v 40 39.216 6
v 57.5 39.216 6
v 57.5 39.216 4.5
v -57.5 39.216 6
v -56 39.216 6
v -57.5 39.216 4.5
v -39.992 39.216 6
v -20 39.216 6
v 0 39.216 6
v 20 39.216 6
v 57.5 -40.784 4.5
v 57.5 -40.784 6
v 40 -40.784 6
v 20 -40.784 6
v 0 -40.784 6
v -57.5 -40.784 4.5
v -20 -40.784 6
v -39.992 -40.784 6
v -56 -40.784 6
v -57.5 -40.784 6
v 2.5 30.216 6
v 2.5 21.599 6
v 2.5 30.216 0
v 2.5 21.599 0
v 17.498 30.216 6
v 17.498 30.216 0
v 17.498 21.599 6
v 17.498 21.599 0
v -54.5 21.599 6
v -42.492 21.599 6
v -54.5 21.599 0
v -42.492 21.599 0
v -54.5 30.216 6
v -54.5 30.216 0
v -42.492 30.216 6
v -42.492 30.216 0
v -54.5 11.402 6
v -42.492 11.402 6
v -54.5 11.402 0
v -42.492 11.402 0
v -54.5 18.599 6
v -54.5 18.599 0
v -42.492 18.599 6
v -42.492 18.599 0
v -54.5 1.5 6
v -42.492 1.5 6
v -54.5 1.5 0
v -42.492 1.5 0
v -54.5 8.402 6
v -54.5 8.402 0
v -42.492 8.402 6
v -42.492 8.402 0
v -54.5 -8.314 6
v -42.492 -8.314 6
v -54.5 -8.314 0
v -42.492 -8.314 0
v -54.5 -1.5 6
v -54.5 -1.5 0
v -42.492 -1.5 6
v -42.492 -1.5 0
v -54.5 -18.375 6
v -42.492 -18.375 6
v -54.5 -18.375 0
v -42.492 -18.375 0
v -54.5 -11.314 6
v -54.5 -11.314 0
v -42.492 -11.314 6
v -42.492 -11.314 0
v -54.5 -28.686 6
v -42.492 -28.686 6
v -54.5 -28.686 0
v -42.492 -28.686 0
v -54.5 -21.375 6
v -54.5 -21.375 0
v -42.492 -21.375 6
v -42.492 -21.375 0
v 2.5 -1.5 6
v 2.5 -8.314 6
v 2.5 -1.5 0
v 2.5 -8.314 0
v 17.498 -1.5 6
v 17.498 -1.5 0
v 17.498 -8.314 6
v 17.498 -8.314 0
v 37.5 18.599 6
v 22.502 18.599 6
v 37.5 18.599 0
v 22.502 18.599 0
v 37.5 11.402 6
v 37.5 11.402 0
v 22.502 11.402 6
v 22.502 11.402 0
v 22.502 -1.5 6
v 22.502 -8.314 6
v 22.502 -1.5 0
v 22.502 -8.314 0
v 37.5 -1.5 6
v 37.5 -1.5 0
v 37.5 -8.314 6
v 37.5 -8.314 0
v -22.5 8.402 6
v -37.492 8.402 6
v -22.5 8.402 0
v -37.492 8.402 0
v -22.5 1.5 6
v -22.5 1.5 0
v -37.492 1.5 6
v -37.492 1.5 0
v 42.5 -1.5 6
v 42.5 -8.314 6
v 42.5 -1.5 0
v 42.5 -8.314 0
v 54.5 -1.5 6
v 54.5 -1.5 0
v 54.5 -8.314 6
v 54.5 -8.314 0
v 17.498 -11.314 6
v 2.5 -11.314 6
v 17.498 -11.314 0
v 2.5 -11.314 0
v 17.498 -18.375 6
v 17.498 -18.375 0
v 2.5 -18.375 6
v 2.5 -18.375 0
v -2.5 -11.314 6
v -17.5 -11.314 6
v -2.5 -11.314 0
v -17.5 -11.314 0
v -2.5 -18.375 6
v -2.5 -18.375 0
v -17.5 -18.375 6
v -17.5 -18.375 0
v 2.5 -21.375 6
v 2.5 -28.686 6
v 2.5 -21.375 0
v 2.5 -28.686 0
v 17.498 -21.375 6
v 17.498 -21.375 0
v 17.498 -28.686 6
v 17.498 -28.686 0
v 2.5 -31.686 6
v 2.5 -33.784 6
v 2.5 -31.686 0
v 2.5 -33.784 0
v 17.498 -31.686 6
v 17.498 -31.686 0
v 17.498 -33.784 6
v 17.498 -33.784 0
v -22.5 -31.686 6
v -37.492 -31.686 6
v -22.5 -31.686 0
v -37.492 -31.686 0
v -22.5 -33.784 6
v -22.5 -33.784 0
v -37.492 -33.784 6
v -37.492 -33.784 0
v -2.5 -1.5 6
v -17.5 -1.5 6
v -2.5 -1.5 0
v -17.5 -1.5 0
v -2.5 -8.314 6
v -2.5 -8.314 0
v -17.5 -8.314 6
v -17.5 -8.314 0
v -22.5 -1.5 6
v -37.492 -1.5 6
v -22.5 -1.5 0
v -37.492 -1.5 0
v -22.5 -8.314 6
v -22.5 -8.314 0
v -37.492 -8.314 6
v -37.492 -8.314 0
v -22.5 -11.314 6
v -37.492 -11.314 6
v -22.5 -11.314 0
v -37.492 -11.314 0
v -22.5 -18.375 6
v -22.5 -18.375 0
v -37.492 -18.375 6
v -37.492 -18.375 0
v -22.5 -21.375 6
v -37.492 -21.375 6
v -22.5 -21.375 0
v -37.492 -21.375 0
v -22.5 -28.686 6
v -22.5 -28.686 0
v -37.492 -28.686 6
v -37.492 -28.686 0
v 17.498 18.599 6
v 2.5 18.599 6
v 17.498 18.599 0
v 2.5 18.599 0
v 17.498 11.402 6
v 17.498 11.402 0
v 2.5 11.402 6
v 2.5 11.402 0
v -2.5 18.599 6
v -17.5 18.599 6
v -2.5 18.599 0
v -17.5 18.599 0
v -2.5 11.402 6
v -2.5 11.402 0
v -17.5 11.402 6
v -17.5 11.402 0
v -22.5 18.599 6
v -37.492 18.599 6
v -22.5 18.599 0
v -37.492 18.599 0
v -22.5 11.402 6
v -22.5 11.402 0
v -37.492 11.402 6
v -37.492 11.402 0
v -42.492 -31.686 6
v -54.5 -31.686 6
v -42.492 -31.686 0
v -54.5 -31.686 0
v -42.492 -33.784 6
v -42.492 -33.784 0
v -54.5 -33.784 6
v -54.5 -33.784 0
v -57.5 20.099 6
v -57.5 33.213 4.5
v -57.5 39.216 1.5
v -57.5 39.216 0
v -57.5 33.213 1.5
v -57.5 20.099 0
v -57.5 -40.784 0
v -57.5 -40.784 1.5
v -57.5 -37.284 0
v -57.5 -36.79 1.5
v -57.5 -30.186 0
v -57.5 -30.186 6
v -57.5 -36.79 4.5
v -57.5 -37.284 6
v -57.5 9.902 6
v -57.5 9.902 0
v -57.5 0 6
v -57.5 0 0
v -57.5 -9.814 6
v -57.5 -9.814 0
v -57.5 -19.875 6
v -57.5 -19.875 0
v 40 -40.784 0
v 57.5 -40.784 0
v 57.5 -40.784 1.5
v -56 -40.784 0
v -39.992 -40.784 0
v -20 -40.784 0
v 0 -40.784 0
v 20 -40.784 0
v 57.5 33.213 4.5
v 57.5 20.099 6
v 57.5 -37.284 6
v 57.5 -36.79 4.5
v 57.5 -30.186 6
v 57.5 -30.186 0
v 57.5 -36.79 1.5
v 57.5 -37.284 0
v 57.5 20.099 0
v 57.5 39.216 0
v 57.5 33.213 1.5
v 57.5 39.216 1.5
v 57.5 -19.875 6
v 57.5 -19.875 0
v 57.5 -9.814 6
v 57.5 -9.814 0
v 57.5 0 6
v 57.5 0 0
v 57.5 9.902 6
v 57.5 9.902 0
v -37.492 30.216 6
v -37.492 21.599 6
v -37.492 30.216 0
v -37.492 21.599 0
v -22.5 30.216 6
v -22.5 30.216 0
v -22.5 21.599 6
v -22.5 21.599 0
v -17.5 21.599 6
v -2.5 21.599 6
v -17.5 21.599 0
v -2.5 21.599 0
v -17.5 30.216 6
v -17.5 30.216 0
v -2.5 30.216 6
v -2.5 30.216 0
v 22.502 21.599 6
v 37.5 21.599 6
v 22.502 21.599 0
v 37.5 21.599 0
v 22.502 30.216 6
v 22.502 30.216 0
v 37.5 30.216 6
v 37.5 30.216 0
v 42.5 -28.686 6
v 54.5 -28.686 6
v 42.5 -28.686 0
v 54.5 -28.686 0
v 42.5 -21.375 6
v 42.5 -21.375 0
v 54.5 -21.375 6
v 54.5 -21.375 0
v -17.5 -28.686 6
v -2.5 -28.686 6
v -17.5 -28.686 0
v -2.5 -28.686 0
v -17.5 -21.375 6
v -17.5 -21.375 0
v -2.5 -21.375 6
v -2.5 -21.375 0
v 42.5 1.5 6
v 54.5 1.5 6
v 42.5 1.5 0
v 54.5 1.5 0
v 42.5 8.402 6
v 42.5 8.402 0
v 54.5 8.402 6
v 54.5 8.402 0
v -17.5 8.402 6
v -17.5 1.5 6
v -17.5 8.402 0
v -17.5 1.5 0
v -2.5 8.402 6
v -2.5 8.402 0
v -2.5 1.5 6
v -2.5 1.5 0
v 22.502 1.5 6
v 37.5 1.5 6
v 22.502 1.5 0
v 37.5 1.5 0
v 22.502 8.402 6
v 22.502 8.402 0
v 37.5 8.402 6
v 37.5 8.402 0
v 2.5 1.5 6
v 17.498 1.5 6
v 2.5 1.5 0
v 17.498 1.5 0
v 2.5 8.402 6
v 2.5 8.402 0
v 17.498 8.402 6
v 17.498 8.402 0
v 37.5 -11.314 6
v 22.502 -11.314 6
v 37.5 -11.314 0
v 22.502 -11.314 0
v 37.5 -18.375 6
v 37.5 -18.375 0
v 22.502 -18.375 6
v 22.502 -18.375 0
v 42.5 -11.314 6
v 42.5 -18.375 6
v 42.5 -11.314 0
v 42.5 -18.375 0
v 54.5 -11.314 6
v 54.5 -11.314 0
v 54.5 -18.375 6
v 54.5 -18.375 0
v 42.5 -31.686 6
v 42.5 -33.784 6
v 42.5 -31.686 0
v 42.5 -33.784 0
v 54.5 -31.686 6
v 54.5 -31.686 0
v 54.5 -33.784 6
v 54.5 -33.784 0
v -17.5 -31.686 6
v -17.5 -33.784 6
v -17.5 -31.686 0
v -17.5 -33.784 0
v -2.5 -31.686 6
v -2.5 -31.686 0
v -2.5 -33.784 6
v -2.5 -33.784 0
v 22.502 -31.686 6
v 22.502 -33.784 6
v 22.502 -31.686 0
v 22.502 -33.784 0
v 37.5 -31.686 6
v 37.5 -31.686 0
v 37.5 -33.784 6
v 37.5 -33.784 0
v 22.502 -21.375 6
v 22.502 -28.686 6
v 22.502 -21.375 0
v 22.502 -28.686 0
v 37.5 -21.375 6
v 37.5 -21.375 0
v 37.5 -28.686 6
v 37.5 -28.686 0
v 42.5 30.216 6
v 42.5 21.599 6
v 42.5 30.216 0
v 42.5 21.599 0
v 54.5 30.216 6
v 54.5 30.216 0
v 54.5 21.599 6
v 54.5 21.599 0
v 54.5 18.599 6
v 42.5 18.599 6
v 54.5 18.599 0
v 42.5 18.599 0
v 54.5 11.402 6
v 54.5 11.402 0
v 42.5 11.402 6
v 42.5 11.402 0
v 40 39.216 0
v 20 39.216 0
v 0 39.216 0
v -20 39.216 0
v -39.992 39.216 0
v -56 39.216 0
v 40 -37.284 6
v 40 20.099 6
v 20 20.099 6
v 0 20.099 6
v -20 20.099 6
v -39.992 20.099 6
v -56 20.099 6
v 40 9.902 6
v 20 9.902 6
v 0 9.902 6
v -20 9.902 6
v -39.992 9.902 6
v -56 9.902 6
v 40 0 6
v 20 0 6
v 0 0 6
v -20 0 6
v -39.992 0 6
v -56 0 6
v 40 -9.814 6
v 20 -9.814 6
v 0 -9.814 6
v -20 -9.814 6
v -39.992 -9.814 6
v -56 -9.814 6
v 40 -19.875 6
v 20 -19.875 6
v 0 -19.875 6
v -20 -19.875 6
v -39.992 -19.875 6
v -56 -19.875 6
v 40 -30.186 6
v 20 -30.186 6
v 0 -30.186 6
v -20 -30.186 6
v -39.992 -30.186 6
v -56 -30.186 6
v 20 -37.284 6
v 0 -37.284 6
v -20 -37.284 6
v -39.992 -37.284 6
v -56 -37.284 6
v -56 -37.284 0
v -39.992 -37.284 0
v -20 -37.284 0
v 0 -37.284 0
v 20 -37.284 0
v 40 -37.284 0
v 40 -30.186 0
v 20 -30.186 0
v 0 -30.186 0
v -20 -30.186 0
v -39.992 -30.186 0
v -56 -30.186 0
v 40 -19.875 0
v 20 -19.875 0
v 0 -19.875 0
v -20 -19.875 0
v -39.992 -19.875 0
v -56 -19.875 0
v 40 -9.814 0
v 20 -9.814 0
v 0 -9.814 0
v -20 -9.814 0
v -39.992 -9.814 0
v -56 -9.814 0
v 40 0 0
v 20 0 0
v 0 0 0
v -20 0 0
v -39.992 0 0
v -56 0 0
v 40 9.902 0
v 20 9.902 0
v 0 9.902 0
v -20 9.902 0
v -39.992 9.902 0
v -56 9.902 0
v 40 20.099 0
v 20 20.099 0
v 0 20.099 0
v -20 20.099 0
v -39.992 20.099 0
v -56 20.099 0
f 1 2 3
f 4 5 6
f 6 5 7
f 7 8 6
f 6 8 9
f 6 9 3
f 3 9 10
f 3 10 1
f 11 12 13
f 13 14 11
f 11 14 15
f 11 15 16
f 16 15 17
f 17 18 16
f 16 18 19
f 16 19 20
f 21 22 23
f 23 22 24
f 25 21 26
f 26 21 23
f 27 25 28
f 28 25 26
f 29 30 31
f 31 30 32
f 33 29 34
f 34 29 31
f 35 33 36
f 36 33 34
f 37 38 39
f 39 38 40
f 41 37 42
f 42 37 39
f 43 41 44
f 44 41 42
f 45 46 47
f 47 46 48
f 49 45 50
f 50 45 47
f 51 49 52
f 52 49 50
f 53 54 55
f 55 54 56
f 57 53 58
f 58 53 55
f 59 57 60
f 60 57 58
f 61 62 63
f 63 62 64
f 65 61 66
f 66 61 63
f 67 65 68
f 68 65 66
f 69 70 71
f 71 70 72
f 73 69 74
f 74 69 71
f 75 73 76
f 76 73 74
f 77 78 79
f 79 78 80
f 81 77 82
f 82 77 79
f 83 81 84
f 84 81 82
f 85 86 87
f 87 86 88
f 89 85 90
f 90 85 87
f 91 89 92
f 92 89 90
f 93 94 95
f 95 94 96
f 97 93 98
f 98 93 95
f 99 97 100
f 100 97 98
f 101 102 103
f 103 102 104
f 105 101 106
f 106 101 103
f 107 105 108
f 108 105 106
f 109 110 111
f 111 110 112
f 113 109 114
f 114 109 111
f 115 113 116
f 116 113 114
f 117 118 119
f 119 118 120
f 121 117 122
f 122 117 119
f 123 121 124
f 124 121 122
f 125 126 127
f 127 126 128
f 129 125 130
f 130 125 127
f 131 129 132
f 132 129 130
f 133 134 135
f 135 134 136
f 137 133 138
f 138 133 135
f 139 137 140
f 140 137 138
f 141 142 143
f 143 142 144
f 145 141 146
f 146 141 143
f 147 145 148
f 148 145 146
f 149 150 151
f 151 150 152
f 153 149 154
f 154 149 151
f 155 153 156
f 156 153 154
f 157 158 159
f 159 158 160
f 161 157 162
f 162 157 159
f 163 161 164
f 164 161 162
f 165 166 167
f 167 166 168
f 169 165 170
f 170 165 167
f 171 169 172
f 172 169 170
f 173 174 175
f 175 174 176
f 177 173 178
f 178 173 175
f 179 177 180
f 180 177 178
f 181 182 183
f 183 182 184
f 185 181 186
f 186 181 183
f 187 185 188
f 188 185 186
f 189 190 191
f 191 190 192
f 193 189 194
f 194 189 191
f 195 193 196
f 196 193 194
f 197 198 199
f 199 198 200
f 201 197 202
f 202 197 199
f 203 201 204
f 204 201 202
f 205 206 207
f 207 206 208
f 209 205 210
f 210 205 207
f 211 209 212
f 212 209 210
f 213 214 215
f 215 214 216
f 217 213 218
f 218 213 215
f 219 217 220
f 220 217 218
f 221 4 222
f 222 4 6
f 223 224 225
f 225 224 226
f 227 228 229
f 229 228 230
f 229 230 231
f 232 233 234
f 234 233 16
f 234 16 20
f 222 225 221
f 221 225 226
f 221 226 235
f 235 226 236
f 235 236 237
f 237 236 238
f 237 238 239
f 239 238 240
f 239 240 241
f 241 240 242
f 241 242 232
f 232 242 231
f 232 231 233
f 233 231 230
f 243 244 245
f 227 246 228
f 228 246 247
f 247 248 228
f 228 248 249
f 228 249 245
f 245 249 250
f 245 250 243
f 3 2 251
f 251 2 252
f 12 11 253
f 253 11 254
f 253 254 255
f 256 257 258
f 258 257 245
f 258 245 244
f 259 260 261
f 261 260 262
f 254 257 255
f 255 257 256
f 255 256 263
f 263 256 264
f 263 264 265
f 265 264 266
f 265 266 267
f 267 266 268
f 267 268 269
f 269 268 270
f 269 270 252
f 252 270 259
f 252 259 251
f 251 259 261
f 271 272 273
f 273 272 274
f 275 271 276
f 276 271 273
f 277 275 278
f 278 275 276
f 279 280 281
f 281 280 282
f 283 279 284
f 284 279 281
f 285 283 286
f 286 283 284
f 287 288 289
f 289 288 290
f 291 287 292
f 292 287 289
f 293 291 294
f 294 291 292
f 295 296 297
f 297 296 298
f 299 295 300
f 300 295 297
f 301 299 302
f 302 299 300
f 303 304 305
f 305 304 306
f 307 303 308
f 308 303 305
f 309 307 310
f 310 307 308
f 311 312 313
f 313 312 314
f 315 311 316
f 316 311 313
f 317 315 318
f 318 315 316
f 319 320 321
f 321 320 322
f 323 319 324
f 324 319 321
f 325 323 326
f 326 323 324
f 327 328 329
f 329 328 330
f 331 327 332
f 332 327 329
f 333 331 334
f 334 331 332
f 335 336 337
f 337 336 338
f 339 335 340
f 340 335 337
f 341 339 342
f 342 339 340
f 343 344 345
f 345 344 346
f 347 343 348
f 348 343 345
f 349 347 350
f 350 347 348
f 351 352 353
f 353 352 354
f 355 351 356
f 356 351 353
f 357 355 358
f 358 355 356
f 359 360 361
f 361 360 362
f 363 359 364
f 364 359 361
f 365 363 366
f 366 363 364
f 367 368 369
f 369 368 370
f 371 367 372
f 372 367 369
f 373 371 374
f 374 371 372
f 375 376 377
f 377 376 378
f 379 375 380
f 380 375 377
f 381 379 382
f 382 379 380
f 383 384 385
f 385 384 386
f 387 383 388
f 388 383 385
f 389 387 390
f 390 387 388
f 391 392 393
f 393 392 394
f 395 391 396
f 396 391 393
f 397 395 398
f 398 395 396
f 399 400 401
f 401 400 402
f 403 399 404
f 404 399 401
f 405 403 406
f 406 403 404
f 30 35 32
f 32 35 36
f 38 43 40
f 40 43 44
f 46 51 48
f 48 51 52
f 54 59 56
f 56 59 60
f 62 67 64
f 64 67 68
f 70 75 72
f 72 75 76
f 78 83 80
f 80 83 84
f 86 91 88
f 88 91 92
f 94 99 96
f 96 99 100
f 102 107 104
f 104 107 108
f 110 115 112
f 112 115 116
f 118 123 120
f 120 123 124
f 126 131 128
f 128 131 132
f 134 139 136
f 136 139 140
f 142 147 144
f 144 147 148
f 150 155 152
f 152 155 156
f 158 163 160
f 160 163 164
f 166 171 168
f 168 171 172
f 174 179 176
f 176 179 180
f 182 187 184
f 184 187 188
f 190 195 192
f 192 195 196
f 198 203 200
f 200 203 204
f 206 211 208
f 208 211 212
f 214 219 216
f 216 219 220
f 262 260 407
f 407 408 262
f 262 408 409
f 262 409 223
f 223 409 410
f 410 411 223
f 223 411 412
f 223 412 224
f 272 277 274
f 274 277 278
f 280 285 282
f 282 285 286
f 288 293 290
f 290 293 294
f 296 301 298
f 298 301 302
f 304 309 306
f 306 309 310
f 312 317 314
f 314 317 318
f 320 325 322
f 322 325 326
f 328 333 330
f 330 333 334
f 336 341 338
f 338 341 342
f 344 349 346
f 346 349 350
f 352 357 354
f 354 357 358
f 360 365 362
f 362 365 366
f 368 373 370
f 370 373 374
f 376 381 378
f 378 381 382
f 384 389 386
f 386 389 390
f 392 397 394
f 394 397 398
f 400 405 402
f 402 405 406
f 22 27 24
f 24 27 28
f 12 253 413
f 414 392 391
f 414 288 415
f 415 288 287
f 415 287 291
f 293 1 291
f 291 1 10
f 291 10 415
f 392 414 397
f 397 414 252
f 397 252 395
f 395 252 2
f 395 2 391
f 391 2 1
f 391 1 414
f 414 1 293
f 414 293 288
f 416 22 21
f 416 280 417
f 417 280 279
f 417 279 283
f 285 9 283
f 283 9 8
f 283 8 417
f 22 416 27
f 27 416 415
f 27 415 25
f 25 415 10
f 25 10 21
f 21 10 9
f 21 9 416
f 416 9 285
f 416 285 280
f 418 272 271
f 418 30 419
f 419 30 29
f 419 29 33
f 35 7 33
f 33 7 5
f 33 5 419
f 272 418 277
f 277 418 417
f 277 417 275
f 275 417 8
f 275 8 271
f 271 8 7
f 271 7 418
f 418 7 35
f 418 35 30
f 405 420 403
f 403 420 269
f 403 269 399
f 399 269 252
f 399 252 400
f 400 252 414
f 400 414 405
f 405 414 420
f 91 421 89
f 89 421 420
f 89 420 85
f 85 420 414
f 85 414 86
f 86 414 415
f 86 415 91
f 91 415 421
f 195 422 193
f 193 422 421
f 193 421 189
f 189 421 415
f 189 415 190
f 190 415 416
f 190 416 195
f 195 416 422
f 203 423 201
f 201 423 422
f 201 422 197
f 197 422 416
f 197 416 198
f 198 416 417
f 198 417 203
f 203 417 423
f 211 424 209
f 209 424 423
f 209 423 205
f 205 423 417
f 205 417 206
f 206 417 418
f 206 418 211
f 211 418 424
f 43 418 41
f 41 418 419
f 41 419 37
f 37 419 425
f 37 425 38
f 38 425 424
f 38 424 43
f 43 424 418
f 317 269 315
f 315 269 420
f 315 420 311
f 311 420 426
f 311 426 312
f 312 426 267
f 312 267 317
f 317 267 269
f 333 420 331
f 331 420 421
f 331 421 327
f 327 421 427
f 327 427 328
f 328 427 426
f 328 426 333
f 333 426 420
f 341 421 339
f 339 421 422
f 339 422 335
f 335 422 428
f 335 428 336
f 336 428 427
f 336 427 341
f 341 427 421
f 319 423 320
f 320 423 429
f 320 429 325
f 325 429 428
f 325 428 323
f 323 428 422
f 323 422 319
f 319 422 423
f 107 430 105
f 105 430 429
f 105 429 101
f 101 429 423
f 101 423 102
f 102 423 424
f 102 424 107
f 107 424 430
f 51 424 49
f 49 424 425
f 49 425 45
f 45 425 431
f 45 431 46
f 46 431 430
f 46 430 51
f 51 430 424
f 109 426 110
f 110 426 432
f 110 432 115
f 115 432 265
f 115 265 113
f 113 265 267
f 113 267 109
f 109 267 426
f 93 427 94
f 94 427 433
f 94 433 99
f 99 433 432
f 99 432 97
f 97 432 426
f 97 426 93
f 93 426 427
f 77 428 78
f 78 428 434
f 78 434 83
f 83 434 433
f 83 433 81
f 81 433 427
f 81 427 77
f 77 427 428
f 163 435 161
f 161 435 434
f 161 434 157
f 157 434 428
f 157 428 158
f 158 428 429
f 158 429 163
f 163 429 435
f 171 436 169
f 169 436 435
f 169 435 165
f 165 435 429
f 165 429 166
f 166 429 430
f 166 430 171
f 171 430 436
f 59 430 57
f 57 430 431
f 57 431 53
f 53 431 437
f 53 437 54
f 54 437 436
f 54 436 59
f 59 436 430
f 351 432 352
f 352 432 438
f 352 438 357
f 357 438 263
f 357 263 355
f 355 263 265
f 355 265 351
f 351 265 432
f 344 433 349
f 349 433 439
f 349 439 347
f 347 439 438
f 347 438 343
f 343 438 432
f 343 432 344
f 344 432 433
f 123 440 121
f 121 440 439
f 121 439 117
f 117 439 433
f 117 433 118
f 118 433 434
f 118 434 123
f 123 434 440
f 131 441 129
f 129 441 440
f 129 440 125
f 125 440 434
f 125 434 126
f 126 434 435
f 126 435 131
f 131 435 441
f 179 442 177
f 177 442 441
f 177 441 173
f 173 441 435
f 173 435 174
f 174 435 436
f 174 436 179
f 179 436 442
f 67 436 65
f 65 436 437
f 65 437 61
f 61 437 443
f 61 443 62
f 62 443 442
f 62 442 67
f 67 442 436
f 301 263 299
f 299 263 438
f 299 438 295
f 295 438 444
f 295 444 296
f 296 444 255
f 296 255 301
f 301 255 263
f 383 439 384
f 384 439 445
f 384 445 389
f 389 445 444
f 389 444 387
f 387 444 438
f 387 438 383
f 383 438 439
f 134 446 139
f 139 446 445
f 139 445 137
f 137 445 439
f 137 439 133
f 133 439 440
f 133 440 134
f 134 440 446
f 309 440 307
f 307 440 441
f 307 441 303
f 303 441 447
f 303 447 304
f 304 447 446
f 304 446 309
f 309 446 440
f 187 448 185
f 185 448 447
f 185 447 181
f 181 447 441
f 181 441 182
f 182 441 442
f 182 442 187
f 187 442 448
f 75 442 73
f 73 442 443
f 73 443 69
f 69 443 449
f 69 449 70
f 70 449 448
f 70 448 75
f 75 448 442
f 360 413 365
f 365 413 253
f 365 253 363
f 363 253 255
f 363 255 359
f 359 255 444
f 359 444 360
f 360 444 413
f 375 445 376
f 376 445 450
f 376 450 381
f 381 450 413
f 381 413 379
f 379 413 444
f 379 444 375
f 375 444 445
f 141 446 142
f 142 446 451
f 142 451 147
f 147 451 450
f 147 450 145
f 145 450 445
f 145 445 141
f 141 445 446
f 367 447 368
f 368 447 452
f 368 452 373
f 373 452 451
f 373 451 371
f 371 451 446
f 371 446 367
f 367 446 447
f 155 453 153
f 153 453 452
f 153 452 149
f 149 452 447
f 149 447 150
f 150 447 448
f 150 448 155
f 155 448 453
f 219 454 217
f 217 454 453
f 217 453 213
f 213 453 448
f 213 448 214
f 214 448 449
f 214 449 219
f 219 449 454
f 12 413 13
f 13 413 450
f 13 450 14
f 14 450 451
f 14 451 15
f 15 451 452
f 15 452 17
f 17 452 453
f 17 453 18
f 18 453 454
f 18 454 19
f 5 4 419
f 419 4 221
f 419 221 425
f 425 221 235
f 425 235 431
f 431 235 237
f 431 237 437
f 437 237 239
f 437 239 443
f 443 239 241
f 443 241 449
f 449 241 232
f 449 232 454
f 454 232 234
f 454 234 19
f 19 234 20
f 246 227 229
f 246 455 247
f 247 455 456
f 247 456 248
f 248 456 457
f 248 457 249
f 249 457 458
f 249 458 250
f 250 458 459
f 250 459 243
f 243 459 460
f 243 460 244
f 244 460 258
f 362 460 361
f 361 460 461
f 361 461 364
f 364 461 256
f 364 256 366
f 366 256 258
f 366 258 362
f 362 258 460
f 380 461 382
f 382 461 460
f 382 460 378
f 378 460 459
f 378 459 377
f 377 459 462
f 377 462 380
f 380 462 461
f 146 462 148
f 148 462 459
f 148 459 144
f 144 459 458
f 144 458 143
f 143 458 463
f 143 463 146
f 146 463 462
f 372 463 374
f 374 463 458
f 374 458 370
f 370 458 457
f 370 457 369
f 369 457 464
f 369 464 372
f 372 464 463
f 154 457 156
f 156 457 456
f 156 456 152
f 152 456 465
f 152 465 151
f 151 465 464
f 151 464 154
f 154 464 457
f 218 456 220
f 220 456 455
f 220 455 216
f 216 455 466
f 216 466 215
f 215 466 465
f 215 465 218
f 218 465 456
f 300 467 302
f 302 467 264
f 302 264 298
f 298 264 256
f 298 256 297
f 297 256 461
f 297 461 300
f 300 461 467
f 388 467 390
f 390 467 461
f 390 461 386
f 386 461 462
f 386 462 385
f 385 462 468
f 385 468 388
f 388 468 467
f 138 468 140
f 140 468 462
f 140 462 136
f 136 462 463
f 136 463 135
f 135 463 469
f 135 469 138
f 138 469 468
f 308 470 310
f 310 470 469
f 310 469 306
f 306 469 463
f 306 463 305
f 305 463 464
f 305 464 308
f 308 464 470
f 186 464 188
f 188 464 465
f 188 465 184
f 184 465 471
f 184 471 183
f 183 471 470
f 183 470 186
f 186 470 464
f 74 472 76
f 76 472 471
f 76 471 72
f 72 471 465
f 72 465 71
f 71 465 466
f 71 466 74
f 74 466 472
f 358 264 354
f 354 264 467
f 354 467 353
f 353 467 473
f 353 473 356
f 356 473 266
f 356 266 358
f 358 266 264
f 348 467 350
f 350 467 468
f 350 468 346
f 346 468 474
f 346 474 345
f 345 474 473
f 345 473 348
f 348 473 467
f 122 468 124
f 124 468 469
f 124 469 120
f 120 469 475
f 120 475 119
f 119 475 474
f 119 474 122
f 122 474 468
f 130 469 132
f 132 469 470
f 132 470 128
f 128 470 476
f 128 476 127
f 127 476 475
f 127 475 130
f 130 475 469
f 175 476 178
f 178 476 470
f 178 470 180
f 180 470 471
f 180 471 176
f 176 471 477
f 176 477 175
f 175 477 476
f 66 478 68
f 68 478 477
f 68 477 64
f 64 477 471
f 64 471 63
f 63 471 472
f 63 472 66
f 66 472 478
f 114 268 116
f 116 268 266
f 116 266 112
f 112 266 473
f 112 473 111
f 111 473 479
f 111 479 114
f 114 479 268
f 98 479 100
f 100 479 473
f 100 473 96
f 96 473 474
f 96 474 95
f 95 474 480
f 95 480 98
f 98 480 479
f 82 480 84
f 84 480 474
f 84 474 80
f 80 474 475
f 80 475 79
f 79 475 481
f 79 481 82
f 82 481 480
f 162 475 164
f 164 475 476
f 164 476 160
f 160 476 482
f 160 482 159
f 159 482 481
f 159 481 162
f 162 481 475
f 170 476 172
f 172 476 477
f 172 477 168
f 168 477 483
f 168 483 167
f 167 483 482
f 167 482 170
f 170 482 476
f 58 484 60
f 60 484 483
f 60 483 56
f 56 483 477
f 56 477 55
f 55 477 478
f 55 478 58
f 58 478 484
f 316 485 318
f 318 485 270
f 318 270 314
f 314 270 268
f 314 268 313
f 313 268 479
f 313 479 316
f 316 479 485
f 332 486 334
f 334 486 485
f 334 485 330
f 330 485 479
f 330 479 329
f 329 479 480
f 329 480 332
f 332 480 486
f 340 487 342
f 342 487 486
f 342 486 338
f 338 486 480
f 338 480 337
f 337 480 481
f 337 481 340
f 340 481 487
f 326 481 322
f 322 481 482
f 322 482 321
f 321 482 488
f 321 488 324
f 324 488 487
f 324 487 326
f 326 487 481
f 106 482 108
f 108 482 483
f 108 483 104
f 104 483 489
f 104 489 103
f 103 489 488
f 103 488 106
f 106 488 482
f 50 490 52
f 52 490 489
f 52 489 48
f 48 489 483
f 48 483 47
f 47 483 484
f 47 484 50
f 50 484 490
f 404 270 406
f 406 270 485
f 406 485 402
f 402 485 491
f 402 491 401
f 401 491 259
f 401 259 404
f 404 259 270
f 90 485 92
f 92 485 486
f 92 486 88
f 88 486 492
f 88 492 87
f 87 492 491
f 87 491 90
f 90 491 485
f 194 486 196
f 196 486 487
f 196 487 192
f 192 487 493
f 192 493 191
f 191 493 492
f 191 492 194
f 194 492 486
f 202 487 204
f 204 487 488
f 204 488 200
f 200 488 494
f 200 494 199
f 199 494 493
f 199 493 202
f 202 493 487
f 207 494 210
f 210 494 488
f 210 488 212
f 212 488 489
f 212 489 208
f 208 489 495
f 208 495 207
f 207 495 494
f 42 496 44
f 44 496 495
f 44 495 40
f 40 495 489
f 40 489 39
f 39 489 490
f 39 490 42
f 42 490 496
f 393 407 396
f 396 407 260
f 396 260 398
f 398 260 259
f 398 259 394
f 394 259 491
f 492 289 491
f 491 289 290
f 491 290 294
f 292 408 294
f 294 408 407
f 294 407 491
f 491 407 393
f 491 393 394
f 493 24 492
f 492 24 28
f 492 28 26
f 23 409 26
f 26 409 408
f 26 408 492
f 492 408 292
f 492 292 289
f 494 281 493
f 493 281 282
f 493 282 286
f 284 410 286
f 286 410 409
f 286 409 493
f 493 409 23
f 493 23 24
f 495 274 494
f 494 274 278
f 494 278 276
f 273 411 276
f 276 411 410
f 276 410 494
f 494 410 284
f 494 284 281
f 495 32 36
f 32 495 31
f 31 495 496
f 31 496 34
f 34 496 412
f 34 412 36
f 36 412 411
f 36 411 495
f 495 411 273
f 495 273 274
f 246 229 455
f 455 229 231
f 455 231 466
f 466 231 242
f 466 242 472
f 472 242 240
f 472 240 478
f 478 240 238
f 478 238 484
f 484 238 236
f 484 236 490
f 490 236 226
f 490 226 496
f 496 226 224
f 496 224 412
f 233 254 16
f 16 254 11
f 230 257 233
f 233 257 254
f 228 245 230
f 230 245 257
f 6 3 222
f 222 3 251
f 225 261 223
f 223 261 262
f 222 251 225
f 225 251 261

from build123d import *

# Parameters (mm, degrees)
ESBO_O1_W                  = 115
ESBO_O1_H                  = 80
ESBO_O1_W_2                = 12.008486519
ESBO_O1_H_2                = 2.098343741
ESBO_O1_W_3                = 14.991513481
ESBO_O1_H_3                = 7.310170624
ESBO_O1_W_4                = 15
ESBO_O1_H_4                = 7.061661657
ESBO_O1_H_5                = 6.81374745
ESBO_O1_W_5                = 14.997964619
ESBO_O1_W_6                = 12
ESBO_O1_H_6                = 6.901670661
ESBO_O1_H_7                = 7.197630057
ESBO_O1_H_8                = 8.61677581
RESSALTO_EXTRUS_O1_DEPTH   = 6
ESBO_O2_W                  = 3
ESBO_O2_H                  = 3.99391125
ESBO_O2_H_2                = 6.002879156
CORTE_EXTRUS_O1_DEPTH      = 58.5
CORTE_EXTRUS_O1_DEPTH_BACK = 58.5


with BuildPart() as part:
    # Esboço1 → Ressalto-extrusão1 (new body)
    with BuildSketch(Plane.XY):
        with Locations((0, -0.783923472)):
            Rectangle(ESBO_O1_W, ESBO_O1_H)
        with Locations((-48.49575674, -32.734751602)):
            Rectangle(ESBO_O1_W_2, ESBO_O1_H_2, mode=Mode.SUBTRACT)
        with Locations((-29.995756741, -32.734751602)):
            Rectangle(ESBO_O1_W_3, ESBO_O1_H_2, mode=Mode.SUBTRACT)
        with Locations((-48.49575674, -25.030494419)):
            Rectangle(ESBO_O1_W_2, ESBO_O1_H_3, mode=Mode.SUBTRACT)
        with Locations((-29.995756741, -25.030494419)):
            Rectangle(ESBO_O1_W_3, ESBO_O1_H_3, mode=Mode.SUBTRACT)
        with Locations((-10, -32.734751602)):
            Rectangle(ESBO_O1_W_4, ESBO_O1_H_2, mode=Mode.SUBTRACT)
        with Locations((-10, -25.030494419)):
            Rectangle(ESBO_O1_W_4, ESBO_O1_H_3, mode=Mode.SUBTRACT)
        with Locations((-48.49575674, -14.844578279)):
            Rectangle(ESBO_O1_W_2, ESBO_O1_H_4, mode=Mode.SUBTRACT)
        with Locations((-29.995756741, -14.844578279)):
            Rectangle(ESBO_O1_W_3, ESBO_O1_H_4, mode=Mode.SUBTRACT)
        with Locations((-48.49575674, -4.906873725)):
            Rectangle(ESBO_O1_W_2, ESBO_O1_H_5, mode=Mode.SUBTRACT)
        with Locations((-29.995756741, -4.906873725)):
            Rectangle(ESBO_O1_W_3, ESBO_O1_H_5, mode=Mode.SUBTRACT)
        with Locations((-10, -14.844578279)):
            Rectangle(ESBO_O1_W_4, ESBO_O1_H_4, mode=Mode.SUBTRACT)
        with Locations((-10, -4.906873725)):
            Rectangle(ESBO_O1_W_4, ESBO_O1_H_5, mode=Mode.SUBTRACT)
        with Locations((9.99898231, -32.734751602)):
            Rectangle(ESBO_O1_W_5, ESBO_O1_H_2, mode=Mode.SUBTRACT)
        with Locations((9.99898231, -25.030494419)):
            Rectangle(ESBO_O1_W_5, ESBO_O1_H_3, mode=Mode.SUBTRACT)
        with Locations((30.00101769, -32.734751602)):
            Rectangle(ESBO_O1_W_5, ESBO_O1_H_2, mode=Mode.SUBTRACT)
        with Locations((48.5, -32.734751602)):
            Rectangle(ESBO_O1_W_6, ESBO_O1_H_2, mode=Mode.SUBTRACT)
        with Locations((30.00101769, -25.030494419)):
            Rectangle(ESBO_O1_W_5, ESBO_O1_H_3, mode=Mode.SUBTRACT)
        with Locations((48.5, -25.030494419)):
            Rectangle(ESBO_O1_W_6, ESBO_O1_H_3, mode=Mode.SUBTRACT)
        with Locations((9.99898231, -14.844578279)):
            Rectangle(ESBO_O1_W_5, ESBO_O1_H_4, mode=Mode.SUBTRACT)
        with Locations((9.99898231, -4.906873725)):
            Rectangle(ESBO_O1_W_5, ESBO_O1_H_5, mode=Mode.SUBTRACT)
        with Locations((30.00101769, -14.844578279)):
            Rectangle(ESBO_O1_W_5, ESBO_O1_H_4, mode=Mode.SUBTRACT)
        with Locations((48.5, -14.844578279)):
            Rectangle(ESBO_O1_W_6, ESBO_O1_H_4, mode=Mode.SUBTRACT)
        with Locations((30.00101769, -4.906873725)):
            Rectangle(ESBO_O1_W_5, ESBO_O1_H_5, mode=Mode.SUBTRACT)
        with Locations((48.5, -4.906873725)):
            Rectangle(ESBO_O1_W_6, ESBO_O1_H_5, mode=Mode.SUBTRACT)
        with Locations((-48.49575674, 4.950835331)):
            Rectangle(ESBO_O1_W_2, ESBO_O1_H_6, mode=Mode.SUBTRACT)
        with Locations((-29.995756741, 4.950835331)):
            Rectangle(ESBO_O1_W_3, ESBO_O1_H_6, mode=Mode.SUBTRACT)
        with Locations((-10, 4.950835331)):
            Rectangle(ESBO_O1_W_4, ESBO_O1_H_6, mode=Mode.SUBTRACT)
        with Locations((-48.49575674, 15.00048569)):
            Rectangle(ESBO_O1_W_2, ESBO_O1_H_7, mode=Mode.SUBTRACT)
        with Locations((-29.995756741, 15.00048569)):
            Rectangle(ESBO_O1_W_3, ESBO_O1_H_7, mode=Mode.SUBTRACT)
        with Locations((-48.49575674, 25.907688623)):
            Rectangle(ESBO_O1_W_2, ESBO_O1_H_8, mode=Mode.SUBTRACT)
        with Locations((-29.995756741, 25.907688623)):
            Rectangle(ESBO_O1_W_3, ESBO_O1_H_8, mode=Mode.SUBTRACT)
        with Locations((-10, 15.00048569)):
            Rectangle(ESBO_O1_W_4, ESBO_O1_H_7, mode=Mode.SUBTRACT)
        with Locations((-10, 25.907688623)):
            Rectangle(ESBO_O1_W_4, ESBO_O1_H_8, mode=Mode.SUBTRACT)
        with Locations((9.99898231, 4.950835331)):
            Rectangle(ESBO_O1_W_5, ESBO_O1_H_6, mode=Mode.SUBTRACT)
        with Locations((30.00101769, 4.950835331)):
            Rectangle(ESBO_O1_W_5, ESBO_O1_H_6, mode=Mode.SUBTRACT)
        with Locations((48.5, 4.950835331)):
            Rectangle(ESBO_O1_W_6, ESBO_O1_H_6, mode=Mode.SUBTRACT)
        with Locations((9.99898231, 15.00048569)):
            Rectangle(ESBO_O1_W_5, ESBO_O1_H_7, mode=Mode.SUBTRACT)
        with Locations((9.99898231, 25.907688623)):
            Rectangle(ESBO_O1_W_5, ESBO_O1_H_8, mode=Mode.SUBTRACT)
        with Locations((30.00101769, 15.00048569)):
            Rectangle(ESBO_O1_W_5, ESBO_O1_H_7, mode=Mode.SUBTRACT)
        with Locations((48.5, 15.00048569)):
            Rectangle(ESBO_O1_W_6, ESBO_O1_H_7, mode=Mode.SUBTRACT)
        with Locations((30.00101769, 25.907688623)):
            Rectangle(ESBO_O1_W_5, ESBO_O1_H_8, mode=Mode.SUBTRACT)
        with Locations((48.5, 25.907688623)):
            Rectangle(ESBO_O1_W_6, ESBO_O1_H_8, mode=Mode.SUBTRACT)
    extrude(amount=RESSALTO_EXTRUS_O1_DEPTH)

    # Esboço2 → Corte-extrusão1 (cut, two sides)
    with BuildSketch(Plane(origin=(0, 0, 0), x_dir=(0, 0, -1), z_dir=(1, 0, 0))) as corte_extrus_o1_sk:
        with Locations((-3, -38.786967847)):
            Rectangle(ESBO_O2_W, ESBO_O2_H)
        with Locations((-3, 36.21463695)):
            Rectangle(ESBO_O2_W, ESBO_O2_H_2)
    extrude(amount=CORTE_EXTRUS_O1_DEPTH, mode=Mode.SUBTRACT)
    extrude(corte_extrus_o1_sk.sketch, amount=-CORTE_EXTRUS_O1_DEPTH_BACK, mode=Mode.SUBTRACT)


solid = part.part
